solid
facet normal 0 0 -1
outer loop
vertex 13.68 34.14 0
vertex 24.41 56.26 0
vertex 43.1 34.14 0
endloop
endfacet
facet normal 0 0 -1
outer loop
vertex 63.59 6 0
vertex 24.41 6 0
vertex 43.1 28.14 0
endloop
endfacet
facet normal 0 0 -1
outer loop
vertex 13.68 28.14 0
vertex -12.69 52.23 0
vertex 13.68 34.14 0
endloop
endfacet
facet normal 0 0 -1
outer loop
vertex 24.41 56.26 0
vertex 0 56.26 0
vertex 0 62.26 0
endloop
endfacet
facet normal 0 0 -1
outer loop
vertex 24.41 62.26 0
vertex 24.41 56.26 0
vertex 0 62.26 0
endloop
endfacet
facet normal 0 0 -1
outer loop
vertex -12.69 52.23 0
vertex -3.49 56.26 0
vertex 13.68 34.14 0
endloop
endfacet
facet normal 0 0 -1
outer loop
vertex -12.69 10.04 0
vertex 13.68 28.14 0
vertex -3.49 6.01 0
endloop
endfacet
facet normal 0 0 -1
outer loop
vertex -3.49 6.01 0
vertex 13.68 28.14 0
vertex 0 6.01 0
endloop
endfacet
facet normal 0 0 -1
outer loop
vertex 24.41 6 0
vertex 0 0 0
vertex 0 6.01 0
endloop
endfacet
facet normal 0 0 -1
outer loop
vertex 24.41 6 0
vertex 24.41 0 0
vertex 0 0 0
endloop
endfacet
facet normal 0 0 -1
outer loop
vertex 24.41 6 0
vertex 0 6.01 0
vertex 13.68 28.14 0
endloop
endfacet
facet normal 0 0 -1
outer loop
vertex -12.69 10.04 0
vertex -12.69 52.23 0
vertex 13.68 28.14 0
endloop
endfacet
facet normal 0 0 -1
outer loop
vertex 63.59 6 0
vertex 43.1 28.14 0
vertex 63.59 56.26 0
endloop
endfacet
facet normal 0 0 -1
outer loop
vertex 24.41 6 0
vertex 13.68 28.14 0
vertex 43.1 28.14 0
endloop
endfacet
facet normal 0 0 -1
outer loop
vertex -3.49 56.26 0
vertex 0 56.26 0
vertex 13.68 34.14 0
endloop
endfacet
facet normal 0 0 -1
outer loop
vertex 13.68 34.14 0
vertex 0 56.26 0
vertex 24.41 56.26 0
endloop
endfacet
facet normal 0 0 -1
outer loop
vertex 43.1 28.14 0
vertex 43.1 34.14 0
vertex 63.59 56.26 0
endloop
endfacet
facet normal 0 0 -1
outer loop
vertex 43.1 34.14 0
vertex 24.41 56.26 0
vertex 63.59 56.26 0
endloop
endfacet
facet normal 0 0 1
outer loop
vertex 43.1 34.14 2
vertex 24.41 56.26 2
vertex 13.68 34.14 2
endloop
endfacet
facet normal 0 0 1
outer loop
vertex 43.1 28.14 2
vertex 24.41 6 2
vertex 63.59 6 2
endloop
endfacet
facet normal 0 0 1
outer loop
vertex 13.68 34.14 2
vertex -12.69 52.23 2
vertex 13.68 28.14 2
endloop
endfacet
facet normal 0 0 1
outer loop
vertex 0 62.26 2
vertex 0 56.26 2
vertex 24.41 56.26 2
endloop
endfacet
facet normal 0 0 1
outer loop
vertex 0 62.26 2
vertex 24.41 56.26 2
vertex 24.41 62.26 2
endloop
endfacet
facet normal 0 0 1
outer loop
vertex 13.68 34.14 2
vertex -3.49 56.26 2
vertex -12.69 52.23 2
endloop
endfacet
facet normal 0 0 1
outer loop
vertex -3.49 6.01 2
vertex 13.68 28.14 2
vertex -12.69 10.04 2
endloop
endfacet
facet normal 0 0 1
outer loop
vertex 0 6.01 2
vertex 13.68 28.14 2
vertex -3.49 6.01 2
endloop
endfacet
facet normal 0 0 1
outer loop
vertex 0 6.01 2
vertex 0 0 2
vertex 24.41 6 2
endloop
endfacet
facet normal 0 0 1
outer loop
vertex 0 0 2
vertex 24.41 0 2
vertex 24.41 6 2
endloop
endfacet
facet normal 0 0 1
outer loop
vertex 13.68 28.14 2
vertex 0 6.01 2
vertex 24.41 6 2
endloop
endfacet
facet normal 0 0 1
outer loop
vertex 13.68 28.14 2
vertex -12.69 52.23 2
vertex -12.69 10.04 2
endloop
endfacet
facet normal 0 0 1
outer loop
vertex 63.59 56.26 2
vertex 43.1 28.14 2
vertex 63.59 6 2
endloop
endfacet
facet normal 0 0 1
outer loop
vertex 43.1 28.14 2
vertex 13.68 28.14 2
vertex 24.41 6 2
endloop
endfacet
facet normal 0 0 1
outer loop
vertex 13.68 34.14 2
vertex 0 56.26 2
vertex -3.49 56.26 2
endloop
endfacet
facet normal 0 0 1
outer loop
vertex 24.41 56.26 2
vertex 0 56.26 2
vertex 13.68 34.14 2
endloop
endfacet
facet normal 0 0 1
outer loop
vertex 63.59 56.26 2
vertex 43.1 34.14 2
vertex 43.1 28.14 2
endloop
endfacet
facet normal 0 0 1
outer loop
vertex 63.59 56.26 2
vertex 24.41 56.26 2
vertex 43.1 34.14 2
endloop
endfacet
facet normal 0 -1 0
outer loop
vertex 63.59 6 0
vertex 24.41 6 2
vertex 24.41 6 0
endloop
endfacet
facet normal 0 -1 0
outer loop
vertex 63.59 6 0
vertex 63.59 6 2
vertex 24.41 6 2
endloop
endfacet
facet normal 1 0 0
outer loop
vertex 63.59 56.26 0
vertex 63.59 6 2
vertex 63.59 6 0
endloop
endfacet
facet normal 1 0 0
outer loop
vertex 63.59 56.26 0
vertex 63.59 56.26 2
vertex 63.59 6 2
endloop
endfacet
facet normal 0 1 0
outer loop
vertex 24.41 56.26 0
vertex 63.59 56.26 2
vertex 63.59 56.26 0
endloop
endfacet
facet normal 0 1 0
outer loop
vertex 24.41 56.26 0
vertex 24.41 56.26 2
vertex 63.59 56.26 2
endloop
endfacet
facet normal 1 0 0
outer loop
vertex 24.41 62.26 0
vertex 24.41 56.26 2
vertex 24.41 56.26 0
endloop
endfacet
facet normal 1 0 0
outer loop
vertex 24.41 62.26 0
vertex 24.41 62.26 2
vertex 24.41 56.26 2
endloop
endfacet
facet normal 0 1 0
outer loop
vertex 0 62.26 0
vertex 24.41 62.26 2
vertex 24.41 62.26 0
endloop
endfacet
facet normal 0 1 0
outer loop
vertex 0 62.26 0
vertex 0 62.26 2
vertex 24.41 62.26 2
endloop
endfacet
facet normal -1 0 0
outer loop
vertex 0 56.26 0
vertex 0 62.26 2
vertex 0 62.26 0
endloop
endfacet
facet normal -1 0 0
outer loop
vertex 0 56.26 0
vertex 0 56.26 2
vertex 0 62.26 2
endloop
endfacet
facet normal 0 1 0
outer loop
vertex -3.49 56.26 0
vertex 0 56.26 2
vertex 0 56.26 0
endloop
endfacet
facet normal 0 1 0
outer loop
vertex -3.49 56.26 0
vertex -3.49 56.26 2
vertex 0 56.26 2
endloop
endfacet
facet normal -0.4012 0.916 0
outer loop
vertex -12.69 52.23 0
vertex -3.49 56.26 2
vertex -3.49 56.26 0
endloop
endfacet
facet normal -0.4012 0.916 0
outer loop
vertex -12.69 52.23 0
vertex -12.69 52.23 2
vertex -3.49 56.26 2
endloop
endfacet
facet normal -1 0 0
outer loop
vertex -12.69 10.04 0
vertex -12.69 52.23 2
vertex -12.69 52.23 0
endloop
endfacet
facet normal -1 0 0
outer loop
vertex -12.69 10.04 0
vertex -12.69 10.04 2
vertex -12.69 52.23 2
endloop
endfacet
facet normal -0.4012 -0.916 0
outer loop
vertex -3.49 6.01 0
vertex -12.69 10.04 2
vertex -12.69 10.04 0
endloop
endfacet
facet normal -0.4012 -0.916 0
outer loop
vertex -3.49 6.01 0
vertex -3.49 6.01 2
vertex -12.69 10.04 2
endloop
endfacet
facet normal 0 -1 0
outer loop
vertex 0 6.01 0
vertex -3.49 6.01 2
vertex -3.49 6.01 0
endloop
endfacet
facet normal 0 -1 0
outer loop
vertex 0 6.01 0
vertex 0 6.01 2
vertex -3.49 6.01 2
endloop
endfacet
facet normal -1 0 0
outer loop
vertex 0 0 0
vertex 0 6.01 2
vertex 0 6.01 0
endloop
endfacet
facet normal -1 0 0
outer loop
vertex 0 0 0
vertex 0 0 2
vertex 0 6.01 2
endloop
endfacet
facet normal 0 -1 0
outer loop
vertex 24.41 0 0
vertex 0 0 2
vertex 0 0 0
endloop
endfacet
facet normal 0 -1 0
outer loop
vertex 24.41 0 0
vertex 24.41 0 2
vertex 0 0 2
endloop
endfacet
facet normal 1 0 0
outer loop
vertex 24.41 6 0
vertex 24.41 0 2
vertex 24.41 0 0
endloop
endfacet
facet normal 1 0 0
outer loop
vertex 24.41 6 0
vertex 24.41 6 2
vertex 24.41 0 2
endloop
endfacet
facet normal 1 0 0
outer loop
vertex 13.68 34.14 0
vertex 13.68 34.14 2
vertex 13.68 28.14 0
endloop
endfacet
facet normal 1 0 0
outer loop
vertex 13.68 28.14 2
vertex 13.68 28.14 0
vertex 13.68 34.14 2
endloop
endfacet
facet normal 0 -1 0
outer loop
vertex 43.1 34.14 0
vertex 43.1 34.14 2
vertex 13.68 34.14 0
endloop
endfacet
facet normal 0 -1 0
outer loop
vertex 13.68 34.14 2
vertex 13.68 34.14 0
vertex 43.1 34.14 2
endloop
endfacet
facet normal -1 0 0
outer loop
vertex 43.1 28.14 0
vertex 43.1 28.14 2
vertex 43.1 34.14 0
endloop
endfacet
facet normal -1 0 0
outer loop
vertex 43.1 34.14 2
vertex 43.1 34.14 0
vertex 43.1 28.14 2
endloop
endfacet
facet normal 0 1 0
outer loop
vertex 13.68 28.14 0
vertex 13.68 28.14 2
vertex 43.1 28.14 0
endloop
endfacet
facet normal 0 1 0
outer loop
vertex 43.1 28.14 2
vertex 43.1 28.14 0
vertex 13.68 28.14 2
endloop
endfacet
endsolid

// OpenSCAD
height=2;       

linear_extrude(height=height)
polygon([
    [0,0]
    ,[0+24.41,0+0]
    ,[0+24.41+0,0+0+6]
    ,[0+24.41+0+39.18,0+0+6+0]
    ,[0+24.41+0+39.18+0,0+0+6+0+50.26]
    ,[0+24.41+0+39.18+0+-39.18,0+0+6+0+50.26+0]
    ,[0+24.41+0+39.18+0+-39.18+0,0+0+6+0+50.26+0+6]
    ,[0+24.41+0+39.18+0+-39.18+0+-24.41,0+0+6+0+50.26+0+6+0]
    ,[0+24.41+0+39.18+0+-39.18+0+-24.41+0,0+0+6+0+50.26+0+6+0+-6]
    ,[0+24.41+0+39.18+0+-39.18+0+-24.41+0+-3.49,0+0+6+0+50.26+0+6+0+-6+0]
    ,[0+24.41+0+39.18+0+-39.18+0+-24.41+0+-3.49+-9.2,0+0+6+0+50.26+0+6+0+-6+0+-4.03]
    ,[0+24.41+0+39.18+0+-39.18+0+-24.41+0+-3.49+-9.2+0,0+0+6+0+50.26+0+6+0+-6+0+-4.03+-42.19]
    ,[0+24.41+0+39.18+0+-39.18+0+-24.41+0+-3.49+-9.2+0+9.2,0+0+6+0+50.26+0+6+0+-6+0+-4.03+-42.19+-4.03]
    ,[0+24.41+0+39.18+0+-39.18+0+-24.41+0+-3.49+-9.2+0+9.2+3.49,0+0+6+0+50.26+0+6+0+-6+0+-4.03+-42.19+-4.03+0]
    ,[0+24.41+0+39.18+0+-39.18+0+-24.41+0+-3.49+-9.2+0+9.2+3.49+13.68,0+0+6+0+50.26+0+6+0+-6+0+-4.03+-42.19+-4.03+0+22.13]
    ,[0+24.41+0+39.18+0+-39.18+0+-24.41+0+-3.49+-9.2+0+9.2+3.49+13.68+29.42,0+0+6+0+50.26+0+6+0+-6+0+-4.03+-42.19+-4.03+0+22.13+0]
    ,[0+24.41+0+39.18+0+-39.18+0+-24.41+0+-3.49+-9.2+0+9.2+3.49+13.68+29.42+0,0+0+6+0+50.26+0+6+0+-6+0+-4.03+-42.19+-4.03+0+22.13+0+6]
    ,[0+24.41+0+39.18+0+-39.18+0+-24.41+0+-3.49+-9.2+0+9.2+3.49+13.68+29.42+0+-29.42,0+0+6+0+50.26+0+6+0+-6+0+-4.03+-42.19+-4.03+0+22.13+0+6+0]
    ,[0+24.41+0+39.18+0+-39.18+0+-24.41+0+-3.49+-9.2+0+9.2+3.49+13.68+29.42+0+-29.42+0,0+0+6+0+50.26+0+6+0+-6+0+-4.03+-42.19+-4.03+0+22.13+0+6+0+-6]
], paths=[[0,1,2,3,4,5,6,7,8,9,10,11,12,13],[14,15,16,17,18]]);         
